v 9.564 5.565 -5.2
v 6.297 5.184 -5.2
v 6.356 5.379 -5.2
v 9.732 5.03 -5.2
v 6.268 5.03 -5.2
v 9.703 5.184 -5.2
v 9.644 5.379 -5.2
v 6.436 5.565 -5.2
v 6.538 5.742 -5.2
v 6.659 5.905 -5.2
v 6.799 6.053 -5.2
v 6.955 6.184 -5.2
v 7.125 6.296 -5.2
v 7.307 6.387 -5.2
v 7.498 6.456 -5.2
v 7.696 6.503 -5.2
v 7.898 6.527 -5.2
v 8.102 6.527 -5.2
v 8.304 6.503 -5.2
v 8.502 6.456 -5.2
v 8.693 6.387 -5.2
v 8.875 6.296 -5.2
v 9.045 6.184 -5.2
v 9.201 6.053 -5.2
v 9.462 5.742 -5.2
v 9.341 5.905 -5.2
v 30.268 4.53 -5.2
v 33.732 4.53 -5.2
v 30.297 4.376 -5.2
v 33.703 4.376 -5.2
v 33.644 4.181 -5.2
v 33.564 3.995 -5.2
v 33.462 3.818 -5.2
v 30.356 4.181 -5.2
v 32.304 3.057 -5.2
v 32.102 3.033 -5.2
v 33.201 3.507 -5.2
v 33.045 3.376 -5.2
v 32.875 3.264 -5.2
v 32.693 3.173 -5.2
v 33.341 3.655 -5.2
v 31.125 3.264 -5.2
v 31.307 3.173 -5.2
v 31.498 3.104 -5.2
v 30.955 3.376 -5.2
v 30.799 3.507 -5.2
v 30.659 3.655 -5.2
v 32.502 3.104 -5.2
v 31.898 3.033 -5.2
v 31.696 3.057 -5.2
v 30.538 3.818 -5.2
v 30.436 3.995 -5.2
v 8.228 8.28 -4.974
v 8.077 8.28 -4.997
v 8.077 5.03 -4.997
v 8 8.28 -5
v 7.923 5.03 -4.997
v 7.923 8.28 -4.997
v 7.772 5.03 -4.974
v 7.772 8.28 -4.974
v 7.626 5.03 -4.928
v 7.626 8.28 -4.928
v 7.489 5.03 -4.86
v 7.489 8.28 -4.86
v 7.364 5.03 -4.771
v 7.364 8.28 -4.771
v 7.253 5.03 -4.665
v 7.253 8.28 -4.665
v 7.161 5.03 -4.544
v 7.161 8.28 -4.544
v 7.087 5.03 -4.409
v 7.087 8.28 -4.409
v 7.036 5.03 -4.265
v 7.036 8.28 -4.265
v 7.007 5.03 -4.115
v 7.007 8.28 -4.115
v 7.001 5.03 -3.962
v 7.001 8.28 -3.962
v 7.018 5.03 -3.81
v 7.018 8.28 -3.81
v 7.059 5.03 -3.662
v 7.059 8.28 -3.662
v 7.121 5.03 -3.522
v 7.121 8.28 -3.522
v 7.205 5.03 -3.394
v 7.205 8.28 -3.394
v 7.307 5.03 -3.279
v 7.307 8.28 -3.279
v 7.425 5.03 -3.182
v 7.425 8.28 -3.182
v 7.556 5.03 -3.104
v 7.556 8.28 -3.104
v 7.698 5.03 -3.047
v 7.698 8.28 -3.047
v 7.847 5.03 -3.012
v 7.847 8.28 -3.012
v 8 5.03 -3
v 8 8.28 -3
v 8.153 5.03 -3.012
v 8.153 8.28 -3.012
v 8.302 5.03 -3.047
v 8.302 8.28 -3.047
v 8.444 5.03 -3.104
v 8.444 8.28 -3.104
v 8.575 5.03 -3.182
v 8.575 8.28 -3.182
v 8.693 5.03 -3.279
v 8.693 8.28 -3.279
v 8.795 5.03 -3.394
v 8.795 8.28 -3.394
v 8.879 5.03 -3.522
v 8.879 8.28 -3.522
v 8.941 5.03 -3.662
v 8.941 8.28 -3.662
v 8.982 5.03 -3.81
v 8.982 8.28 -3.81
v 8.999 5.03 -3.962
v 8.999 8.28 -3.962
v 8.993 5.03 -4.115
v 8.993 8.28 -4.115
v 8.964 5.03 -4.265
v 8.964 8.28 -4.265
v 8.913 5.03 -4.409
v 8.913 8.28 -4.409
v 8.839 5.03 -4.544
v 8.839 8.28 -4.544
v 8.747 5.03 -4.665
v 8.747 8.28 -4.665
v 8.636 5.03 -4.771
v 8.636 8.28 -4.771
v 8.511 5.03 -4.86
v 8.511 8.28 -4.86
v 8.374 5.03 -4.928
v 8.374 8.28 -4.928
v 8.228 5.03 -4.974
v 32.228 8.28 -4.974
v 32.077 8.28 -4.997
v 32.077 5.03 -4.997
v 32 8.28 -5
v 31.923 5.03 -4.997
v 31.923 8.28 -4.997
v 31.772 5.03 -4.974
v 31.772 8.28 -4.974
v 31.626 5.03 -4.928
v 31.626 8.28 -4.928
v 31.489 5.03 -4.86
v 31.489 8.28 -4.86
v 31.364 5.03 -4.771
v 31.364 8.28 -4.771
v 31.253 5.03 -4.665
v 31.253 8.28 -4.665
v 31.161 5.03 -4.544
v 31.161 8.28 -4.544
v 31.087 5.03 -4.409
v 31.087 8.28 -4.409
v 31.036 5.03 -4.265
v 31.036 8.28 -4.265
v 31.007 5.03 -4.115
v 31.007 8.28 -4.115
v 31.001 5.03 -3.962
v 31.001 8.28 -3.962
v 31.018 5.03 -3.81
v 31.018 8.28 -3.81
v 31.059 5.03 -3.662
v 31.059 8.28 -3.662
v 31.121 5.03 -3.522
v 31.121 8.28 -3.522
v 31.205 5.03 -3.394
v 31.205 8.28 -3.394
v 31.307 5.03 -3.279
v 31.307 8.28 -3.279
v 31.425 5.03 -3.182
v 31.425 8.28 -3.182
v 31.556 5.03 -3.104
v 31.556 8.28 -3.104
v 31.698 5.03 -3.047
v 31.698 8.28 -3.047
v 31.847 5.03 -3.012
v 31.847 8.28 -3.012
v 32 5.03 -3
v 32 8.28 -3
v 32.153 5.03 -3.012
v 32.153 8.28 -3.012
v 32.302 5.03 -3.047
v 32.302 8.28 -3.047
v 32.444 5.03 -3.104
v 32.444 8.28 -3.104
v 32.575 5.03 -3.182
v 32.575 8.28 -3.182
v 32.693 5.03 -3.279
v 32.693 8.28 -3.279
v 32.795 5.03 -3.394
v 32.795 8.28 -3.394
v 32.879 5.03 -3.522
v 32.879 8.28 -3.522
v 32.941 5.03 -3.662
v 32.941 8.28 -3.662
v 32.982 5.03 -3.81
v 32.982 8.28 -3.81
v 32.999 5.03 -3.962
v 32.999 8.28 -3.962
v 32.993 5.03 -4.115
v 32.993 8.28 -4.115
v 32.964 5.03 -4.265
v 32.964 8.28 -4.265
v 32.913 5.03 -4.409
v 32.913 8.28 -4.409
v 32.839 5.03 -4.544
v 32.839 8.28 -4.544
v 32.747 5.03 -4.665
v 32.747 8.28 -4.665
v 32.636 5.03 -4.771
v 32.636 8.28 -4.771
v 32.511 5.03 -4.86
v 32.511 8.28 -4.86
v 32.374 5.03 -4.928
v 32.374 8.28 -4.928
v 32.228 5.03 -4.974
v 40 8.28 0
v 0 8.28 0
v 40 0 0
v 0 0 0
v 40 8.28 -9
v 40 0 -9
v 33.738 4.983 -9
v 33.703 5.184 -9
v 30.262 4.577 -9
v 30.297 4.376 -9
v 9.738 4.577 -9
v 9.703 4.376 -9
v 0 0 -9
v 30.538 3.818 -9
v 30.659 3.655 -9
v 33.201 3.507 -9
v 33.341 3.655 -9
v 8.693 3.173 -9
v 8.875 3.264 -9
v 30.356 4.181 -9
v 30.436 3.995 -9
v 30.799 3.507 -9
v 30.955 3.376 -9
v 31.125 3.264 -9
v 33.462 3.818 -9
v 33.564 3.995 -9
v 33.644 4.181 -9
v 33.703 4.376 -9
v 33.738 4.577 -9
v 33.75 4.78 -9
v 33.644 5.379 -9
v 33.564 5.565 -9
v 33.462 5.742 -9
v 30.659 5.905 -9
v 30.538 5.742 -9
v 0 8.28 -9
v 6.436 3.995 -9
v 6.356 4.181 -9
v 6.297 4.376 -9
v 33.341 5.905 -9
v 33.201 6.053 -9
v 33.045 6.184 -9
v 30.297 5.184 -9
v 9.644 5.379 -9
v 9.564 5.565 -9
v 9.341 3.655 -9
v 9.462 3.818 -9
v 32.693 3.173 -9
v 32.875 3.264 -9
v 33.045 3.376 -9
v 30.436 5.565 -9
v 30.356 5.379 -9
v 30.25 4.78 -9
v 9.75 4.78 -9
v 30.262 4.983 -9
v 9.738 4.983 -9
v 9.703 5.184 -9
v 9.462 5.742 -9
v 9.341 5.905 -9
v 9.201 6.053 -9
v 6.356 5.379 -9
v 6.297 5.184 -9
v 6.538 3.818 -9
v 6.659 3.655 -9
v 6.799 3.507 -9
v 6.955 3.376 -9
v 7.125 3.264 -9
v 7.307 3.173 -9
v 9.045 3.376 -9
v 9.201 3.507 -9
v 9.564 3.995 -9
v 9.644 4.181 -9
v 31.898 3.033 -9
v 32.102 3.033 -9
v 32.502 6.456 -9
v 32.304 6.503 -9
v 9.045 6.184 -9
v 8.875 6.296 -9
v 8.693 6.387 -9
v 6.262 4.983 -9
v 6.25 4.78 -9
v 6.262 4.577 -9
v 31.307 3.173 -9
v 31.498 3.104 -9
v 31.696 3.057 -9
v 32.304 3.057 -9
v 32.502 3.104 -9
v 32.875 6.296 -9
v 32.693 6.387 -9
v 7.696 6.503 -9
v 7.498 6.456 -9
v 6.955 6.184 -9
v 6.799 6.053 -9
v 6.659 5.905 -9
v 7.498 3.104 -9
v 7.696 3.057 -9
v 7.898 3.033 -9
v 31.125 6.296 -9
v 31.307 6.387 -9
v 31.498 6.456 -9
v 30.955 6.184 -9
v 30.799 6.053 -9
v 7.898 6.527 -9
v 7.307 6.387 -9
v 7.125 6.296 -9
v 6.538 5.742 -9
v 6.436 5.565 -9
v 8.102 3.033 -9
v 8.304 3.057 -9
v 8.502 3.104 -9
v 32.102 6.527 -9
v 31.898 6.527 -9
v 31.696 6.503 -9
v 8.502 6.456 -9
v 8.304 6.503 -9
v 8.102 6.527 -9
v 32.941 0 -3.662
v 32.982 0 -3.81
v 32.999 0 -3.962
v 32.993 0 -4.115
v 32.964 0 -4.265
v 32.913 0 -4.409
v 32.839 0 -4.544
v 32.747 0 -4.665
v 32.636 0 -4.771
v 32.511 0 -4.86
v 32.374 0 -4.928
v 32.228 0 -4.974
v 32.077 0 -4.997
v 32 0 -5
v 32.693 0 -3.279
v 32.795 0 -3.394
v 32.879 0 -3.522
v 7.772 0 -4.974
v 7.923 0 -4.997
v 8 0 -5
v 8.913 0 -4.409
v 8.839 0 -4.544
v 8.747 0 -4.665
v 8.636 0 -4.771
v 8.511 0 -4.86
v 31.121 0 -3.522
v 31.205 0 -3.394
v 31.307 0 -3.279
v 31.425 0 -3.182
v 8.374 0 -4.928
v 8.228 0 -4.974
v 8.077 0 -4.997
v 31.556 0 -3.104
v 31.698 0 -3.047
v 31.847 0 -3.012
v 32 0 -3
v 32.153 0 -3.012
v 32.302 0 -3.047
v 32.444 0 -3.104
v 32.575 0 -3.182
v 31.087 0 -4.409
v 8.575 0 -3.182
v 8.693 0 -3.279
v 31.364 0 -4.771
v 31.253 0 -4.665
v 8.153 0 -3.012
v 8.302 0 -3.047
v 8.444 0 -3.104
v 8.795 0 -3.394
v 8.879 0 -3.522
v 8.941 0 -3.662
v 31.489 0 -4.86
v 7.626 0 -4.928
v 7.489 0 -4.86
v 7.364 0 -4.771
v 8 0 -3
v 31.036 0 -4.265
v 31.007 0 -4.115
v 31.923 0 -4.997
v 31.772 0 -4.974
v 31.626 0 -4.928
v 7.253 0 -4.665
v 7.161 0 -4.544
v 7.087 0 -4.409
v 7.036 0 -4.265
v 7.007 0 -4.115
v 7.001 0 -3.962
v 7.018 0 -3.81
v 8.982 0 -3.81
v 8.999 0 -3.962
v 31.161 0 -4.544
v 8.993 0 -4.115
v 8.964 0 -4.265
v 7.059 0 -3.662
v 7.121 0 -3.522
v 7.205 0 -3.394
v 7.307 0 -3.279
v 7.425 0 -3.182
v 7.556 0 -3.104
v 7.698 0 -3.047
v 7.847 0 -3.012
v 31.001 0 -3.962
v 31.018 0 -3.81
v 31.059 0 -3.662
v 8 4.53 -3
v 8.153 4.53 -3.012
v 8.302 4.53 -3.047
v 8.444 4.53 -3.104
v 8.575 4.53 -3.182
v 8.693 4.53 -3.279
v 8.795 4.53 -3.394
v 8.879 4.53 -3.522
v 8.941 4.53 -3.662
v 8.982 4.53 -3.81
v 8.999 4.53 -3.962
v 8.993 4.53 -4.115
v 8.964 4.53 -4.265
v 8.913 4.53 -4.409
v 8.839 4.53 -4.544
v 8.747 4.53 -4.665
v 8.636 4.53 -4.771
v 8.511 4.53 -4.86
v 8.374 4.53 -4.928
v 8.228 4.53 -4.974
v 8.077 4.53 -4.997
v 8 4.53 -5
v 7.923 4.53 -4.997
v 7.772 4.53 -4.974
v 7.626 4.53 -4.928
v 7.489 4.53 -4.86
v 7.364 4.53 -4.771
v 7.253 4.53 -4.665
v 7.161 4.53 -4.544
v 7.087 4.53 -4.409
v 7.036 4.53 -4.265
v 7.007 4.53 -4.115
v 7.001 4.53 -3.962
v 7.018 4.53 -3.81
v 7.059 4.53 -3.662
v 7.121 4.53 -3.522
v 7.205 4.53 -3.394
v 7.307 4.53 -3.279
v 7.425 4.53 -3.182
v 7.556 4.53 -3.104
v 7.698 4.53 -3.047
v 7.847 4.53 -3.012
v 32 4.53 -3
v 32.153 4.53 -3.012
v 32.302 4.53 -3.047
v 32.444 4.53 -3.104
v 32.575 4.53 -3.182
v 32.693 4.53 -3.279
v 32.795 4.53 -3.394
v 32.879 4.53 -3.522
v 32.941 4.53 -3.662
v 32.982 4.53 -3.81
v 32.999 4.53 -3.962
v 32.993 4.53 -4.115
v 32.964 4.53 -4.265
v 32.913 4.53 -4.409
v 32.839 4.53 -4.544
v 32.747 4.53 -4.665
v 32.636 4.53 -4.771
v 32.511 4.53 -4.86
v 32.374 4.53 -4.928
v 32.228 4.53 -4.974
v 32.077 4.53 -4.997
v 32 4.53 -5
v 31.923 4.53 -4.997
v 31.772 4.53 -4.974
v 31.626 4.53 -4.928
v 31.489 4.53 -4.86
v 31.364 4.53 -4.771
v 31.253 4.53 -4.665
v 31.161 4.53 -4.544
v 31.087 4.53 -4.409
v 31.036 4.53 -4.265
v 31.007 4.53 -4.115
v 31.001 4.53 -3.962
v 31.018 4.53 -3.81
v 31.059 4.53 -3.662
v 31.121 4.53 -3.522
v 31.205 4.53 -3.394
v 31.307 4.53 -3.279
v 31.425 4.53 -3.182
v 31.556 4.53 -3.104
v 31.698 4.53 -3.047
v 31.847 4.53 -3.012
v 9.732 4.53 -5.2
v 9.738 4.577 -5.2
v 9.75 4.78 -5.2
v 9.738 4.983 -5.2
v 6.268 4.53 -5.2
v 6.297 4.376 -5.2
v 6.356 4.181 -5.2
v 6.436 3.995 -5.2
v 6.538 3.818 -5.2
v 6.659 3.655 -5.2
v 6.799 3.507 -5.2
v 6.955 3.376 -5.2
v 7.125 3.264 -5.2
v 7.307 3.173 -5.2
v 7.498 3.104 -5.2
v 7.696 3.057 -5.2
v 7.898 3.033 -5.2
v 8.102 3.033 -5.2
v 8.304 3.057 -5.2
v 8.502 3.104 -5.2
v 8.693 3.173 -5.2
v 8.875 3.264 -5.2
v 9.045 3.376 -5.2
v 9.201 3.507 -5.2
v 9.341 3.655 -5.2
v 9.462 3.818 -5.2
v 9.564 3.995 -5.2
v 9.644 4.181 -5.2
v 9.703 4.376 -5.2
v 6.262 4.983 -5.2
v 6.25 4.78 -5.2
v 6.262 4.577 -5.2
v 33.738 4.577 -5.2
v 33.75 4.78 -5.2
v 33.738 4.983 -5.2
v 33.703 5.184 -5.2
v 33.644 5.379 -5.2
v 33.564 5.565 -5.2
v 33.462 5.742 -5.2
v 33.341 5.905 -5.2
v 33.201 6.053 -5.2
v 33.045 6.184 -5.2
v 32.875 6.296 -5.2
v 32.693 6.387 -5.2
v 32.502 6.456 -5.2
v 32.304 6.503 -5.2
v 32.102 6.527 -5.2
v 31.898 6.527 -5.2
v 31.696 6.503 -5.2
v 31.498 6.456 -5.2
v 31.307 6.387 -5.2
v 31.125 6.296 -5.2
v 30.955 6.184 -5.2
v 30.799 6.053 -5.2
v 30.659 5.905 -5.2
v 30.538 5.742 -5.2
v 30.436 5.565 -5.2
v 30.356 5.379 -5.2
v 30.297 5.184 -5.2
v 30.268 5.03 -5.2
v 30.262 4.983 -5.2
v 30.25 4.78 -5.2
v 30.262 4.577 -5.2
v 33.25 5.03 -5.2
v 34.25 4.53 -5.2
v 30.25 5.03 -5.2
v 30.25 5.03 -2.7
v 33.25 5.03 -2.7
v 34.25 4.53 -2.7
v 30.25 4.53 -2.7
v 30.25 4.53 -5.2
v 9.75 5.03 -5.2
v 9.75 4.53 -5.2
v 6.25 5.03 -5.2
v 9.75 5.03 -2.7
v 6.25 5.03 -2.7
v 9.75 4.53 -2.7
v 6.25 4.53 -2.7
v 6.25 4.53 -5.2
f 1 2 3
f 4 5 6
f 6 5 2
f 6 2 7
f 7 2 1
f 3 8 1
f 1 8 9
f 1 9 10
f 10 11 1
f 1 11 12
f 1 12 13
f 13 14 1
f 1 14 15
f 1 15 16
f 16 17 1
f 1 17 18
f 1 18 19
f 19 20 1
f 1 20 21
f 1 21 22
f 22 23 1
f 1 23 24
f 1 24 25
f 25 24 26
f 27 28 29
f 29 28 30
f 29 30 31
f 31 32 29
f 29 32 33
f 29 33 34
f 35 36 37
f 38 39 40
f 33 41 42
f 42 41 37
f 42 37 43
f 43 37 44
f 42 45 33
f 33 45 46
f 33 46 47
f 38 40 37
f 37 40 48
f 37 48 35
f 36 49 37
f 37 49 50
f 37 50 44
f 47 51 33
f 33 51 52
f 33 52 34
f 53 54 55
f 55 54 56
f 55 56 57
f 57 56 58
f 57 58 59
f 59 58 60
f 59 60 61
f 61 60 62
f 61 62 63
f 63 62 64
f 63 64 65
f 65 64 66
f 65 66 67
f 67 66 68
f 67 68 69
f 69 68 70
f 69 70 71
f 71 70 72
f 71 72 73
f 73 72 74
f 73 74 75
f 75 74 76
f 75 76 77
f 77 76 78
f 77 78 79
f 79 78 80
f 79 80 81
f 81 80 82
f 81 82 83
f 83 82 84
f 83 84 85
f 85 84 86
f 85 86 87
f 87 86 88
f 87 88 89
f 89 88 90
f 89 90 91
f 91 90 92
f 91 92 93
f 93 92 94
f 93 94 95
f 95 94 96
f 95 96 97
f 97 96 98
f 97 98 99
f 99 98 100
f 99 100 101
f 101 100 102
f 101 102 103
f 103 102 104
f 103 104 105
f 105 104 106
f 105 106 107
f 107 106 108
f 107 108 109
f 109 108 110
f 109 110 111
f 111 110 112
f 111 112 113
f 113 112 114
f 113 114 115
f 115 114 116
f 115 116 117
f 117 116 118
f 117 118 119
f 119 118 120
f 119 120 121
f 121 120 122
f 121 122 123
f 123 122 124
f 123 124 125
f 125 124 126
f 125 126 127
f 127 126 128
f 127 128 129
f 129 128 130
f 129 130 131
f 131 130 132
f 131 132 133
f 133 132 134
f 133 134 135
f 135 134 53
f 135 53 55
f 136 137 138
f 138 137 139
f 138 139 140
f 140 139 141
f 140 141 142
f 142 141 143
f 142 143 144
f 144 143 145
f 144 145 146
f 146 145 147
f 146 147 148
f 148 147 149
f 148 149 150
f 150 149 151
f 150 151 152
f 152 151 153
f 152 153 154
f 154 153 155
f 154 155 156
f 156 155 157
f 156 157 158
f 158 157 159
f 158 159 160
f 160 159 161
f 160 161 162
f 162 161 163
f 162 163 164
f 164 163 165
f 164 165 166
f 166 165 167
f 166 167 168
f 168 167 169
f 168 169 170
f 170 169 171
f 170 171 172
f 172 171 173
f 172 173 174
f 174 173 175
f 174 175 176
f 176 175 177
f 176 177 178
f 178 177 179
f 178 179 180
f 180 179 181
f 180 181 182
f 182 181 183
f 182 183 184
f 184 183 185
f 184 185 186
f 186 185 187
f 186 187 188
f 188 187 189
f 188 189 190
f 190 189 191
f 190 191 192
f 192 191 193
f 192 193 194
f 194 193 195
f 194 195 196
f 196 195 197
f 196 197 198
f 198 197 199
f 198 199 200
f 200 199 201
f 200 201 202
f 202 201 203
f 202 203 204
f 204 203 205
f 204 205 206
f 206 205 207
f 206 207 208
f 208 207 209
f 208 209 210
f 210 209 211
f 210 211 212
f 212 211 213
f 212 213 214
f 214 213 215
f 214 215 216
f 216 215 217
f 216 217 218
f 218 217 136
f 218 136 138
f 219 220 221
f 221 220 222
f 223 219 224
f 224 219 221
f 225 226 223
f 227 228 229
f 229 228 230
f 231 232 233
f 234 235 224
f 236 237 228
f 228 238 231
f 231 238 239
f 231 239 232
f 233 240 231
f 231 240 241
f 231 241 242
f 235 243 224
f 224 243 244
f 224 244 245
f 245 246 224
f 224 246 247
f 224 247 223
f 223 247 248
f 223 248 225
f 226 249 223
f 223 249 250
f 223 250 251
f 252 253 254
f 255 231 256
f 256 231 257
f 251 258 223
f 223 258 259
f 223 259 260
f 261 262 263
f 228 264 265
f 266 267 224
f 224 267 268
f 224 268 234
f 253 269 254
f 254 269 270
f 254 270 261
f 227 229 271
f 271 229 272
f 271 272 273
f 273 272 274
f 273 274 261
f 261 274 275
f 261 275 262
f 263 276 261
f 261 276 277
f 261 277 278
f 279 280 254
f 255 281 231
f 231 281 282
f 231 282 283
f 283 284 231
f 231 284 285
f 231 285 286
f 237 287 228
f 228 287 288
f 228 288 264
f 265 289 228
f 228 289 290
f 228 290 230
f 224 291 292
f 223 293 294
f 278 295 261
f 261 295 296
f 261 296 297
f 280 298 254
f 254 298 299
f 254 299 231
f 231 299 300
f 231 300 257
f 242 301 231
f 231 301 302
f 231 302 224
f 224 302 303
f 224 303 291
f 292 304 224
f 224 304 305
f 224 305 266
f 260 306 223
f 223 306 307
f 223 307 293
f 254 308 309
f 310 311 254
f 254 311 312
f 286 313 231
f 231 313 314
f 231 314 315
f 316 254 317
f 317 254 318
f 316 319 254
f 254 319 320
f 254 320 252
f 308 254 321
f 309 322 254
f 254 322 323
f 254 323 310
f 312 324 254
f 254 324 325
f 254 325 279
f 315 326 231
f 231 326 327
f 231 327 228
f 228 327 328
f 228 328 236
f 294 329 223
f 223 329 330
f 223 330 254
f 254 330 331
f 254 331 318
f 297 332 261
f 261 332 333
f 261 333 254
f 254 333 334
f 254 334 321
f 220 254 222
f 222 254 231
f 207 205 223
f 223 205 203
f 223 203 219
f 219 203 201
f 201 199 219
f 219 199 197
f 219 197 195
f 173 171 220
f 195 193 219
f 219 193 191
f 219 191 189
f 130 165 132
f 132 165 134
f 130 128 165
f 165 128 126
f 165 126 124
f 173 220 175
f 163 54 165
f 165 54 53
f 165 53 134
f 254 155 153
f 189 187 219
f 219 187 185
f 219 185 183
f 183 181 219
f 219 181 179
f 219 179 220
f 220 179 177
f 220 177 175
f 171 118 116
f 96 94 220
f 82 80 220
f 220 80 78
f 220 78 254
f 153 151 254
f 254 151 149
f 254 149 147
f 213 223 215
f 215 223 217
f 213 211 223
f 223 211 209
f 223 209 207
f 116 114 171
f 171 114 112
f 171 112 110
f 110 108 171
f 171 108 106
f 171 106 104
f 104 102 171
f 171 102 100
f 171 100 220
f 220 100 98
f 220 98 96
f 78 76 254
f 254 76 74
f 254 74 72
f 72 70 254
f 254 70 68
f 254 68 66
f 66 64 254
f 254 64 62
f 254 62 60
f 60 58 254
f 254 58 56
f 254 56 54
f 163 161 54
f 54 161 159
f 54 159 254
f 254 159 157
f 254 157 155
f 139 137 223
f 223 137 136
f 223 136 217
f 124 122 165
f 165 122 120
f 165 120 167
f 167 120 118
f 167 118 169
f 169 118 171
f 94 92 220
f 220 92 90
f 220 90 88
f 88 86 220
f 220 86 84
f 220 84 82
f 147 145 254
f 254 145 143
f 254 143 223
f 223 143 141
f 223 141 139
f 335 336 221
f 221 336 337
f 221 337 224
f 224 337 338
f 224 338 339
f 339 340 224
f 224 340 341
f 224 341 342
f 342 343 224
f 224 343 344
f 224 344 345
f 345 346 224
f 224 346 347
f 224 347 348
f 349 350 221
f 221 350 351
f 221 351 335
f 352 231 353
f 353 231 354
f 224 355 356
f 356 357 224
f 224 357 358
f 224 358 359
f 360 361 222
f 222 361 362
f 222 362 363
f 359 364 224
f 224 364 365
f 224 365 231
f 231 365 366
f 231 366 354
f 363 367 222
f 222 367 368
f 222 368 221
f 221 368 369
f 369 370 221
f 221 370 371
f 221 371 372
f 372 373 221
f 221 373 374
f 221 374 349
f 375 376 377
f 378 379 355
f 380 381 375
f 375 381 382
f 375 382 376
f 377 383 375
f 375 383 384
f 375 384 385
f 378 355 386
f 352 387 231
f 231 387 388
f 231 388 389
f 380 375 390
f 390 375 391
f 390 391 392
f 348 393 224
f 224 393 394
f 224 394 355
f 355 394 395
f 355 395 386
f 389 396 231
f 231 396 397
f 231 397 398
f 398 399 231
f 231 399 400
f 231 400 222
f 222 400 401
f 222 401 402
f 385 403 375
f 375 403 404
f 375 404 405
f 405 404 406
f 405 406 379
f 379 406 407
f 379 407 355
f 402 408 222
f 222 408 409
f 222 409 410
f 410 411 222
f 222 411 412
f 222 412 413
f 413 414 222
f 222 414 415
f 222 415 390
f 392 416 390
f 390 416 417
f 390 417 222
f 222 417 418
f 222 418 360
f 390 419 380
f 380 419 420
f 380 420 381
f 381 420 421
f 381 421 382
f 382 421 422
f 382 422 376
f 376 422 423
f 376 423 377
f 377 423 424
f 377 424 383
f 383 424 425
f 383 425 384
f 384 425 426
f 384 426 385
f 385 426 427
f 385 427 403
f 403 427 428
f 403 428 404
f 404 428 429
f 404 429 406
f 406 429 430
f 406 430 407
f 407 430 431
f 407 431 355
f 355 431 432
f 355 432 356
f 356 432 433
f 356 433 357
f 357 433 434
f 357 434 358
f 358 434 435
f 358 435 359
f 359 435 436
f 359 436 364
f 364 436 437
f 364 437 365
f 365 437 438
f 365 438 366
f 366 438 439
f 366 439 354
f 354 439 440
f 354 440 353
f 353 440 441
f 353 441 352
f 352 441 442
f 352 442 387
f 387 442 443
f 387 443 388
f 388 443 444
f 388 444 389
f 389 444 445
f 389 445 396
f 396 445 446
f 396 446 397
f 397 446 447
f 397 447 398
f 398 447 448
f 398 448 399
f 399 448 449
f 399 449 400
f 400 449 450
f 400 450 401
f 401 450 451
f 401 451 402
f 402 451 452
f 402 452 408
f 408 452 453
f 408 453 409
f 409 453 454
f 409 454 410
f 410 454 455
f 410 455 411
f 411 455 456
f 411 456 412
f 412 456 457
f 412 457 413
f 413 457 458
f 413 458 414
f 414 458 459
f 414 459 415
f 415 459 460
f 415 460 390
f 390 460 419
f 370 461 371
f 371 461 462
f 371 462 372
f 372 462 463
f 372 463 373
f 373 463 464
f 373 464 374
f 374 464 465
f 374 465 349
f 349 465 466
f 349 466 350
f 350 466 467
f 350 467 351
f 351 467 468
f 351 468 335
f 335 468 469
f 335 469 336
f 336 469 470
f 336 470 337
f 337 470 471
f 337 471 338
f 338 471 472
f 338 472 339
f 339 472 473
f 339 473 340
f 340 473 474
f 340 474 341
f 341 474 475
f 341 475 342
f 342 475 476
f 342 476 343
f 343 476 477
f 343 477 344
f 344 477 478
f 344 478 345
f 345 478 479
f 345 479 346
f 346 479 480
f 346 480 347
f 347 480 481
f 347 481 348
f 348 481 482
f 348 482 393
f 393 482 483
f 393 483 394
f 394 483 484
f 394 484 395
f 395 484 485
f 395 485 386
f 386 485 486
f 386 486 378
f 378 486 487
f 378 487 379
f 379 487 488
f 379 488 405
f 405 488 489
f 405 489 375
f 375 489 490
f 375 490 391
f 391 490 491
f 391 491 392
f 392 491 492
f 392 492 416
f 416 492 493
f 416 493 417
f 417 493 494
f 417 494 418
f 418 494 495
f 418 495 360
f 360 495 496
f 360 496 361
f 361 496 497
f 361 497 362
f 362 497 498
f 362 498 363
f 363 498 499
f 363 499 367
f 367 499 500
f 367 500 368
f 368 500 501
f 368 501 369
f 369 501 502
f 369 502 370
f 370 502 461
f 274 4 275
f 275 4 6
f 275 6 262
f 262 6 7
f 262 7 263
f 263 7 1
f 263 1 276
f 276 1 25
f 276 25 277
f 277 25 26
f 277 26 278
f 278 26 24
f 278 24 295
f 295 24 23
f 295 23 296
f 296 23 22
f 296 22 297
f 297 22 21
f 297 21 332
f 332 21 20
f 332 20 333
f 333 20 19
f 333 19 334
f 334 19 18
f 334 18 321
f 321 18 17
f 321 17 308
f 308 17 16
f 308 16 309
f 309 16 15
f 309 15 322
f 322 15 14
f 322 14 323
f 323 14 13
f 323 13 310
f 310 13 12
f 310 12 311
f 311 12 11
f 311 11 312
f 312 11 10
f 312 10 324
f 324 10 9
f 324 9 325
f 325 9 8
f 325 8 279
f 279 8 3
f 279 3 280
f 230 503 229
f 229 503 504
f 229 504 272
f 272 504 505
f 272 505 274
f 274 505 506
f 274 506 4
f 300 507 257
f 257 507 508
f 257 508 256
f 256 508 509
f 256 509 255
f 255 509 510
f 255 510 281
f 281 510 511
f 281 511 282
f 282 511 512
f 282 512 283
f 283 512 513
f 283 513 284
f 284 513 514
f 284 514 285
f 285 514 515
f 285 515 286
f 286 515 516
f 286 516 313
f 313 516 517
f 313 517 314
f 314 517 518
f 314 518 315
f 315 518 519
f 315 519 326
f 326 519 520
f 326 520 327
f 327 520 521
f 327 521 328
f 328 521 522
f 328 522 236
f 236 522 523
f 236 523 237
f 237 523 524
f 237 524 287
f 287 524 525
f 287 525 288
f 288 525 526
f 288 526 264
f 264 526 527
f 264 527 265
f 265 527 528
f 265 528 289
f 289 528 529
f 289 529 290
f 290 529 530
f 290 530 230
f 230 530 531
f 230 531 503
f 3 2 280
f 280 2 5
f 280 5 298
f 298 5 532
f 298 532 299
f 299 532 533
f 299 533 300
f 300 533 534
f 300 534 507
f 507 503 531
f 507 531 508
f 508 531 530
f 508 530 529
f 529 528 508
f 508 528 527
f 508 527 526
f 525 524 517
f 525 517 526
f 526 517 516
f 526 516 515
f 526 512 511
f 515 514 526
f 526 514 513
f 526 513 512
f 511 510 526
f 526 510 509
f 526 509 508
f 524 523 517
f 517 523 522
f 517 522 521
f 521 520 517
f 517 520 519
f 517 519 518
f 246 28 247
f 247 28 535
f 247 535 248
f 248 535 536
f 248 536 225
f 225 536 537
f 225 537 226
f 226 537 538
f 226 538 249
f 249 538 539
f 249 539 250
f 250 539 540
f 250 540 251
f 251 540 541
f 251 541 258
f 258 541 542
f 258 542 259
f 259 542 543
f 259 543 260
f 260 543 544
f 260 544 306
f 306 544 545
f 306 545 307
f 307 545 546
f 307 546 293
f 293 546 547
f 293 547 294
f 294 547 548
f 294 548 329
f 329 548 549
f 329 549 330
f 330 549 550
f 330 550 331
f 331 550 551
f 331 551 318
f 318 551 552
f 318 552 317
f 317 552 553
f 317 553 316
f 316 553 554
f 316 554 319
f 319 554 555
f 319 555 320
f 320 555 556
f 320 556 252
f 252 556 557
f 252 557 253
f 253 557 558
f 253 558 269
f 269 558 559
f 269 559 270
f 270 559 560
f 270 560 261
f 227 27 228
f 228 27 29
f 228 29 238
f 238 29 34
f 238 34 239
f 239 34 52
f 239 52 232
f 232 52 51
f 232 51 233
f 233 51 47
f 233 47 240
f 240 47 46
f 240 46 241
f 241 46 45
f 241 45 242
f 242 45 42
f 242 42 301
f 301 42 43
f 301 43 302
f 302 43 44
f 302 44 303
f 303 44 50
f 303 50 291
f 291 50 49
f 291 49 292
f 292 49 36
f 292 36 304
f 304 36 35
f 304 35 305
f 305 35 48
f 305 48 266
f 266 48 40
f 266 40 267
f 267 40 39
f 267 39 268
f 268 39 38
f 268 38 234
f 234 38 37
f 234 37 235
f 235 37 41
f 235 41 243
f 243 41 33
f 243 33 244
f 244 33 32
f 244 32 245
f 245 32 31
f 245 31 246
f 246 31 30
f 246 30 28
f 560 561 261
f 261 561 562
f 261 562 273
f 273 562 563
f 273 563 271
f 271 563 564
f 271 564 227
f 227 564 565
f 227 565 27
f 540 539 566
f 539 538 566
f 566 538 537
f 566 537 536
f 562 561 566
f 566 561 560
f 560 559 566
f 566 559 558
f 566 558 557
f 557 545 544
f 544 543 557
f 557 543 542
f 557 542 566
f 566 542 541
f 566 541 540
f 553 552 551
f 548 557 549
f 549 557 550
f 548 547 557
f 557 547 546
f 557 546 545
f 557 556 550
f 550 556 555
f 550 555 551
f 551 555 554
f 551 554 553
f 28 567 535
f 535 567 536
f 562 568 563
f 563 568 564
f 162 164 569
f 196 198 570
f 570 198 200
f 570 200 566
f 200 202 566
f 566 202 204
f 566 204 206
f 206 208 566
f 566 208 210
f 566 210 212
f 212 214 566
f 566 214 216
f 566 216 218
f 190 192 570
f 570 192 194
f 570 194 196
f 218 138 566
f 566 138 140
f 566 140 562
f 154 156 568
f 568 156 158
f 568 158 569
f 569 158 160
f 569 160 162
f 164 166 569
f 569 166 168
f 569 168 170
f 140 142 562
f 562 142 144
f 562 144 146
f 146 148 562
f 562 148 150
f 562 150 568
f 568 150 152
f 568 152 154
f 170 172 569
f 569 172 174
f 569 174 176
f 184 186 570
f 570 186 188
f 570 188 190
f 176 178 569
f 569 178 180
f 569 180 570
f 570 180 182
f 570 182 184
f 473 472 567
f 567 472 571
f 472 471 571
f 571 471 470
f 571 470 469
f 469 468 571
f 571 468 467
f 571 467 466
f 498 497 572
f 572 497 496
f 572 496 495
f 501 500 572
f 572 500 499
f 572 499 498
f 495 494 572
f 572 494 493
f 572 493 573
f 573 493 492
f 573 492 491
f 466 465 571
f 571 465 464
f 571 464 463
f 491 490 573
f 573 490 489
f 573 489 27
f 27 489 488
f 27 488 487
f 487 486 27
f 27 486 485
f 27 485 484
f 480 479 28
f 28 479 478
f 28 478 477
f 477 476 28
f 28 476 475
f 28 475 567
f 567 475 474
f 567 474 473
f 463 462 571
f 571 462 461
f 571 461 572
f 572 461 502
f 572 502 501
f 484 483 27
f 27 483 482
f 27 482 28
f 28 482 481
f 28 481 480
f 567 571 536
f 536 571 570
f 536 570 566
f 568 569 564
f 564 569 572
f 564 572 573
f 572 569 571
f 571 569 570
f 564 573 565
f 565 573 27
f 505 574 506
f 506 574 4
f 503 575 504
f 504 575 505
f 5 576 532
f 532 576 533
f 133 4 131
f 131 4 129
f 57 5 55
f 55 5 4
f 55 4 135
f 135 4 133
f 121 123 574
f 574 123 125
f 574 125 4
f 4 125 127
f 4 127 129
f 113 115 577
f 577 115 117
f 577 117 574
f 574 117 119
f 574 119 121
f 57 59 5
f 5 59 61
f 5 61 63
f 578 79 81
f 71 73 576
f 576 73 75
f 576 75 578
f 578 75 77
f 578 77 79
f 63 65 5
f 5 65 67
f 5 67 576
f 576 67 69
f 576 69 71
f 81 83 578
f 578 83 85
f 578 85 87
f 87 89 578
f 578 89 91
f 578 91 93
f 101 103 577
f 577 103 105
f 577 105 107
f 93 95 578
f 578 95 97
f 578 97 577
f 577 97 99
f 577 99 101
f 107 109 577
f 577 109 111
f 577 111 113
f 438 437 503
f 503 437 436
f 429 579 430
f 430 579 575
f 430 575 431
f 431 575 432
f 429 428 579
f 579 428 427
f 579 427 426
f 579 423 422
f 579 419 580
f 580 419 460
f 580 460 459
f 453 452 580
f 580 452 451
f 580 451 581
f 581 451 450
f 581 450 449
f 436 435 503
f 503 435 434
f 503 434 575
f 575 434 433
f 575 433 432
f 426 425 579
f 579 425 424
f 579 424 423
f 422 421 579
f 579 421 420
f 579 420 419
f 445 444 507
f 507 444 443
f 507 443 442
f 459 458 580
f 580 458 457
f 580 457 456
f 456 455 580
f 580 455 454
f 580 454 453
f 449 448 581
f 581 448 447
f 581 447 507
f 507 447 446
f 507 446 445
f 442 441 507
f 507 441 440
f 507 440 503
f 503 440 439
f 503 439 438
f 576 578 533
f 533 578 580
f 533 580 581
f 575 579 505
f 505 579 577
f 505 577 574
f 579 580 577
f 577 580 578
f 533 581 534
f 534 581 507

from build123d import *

# Parameters (mm, degrees)
SKETCH1_W               = 40
SKETCH1_H               = 9
BOSS_EXTRUDE1_DEPTH     = 8.28
CUT_EXTRUDE1_DEPTH      = 5
CUT_EXTRUDE1_DEPTH_BACK = 10
SKETCH2_R               = 1
SKETCH3_R               = 1.75
CUT_EXTRUDE6_DEPTH      = 3.8
SKETCH4_W               = 3.5
SKETCH4_H               = 0.5
CUT_EXTRUDE7_DEPTH      = 2.5


with BuildPart() as part:
    # Sketch1 → Boss-Extrude1 (new body)
    with BuildSketch(Plane(origin=(0, 0, 0), x_dir=(1, 0, 0), z_dir=(0, 1, 0))):
        with Locations((20, 4.5)):
            Rectangle(SKETCH1_W, SKETCH1_H)
    extrude(amount=BOSS_EXTRUDE1_DEPTH)

    # Sketch2 → Cut-Extrude1 (cut, two sides: drawn at the far end of the back side and taken through both)
    with BuildSketch(Plane(origin=(0, 8.28, 0), x_dir=(1, 0, 0), z_dir=(0, 1, 0)).offset(-CUT_EXTRUDE1_DEPTH_BACK)):
        with Locations(Location((8, 4, 0), (0, 0, 90))):
            Circle(SKETCH2_R)
        with Locations(Location((32, 4, 0), (0, 0, 90))):
            Circle(SKETCH2_R)
    extrude(amount=CUT_EXTRUDE1_DEPTH + CUT_EXTRUDE1_DEPTH_BACK, mode=Mode.SUBTRACT)

    # Sketch3 → Cut-Extrude6 (cut)
    with BuildSketch(Plane(origin=(0, 0, -9), x_dir=(-1, 0, 0), z_dir=(0, 0, -1))):
        with Locations((-32, 4.78)):
            Circle(SKETCH3_R)
        with Locations((-8, 4.78)):
            Circle(SKETCH3_R)
    extrude(amount=-CUT_EXTRUDE6_DEPTH, mode=Mode.SUBTRACT)

    # Sketch4 → Cut-Extrude7 (cut)
    with BuildSketch(Plane(origin=(0, 0, -5.2), x_dir=(-1, 0, 0), z_dir=(0, 0, -1))):
        Polygon((-30.25, 5.03), (-33.25, 5.03), (-34.25, 4.53), (-30.25, 4.53), align=None)
        with Locations((-8, 4.78)):
            Rectangle(SKETCH4_W, SKETCH4_H)
    extrude(amount=-CUT_EXTRUDE7_DEPTH, mode=Mode.SUBTRACT)


solid = part.part
